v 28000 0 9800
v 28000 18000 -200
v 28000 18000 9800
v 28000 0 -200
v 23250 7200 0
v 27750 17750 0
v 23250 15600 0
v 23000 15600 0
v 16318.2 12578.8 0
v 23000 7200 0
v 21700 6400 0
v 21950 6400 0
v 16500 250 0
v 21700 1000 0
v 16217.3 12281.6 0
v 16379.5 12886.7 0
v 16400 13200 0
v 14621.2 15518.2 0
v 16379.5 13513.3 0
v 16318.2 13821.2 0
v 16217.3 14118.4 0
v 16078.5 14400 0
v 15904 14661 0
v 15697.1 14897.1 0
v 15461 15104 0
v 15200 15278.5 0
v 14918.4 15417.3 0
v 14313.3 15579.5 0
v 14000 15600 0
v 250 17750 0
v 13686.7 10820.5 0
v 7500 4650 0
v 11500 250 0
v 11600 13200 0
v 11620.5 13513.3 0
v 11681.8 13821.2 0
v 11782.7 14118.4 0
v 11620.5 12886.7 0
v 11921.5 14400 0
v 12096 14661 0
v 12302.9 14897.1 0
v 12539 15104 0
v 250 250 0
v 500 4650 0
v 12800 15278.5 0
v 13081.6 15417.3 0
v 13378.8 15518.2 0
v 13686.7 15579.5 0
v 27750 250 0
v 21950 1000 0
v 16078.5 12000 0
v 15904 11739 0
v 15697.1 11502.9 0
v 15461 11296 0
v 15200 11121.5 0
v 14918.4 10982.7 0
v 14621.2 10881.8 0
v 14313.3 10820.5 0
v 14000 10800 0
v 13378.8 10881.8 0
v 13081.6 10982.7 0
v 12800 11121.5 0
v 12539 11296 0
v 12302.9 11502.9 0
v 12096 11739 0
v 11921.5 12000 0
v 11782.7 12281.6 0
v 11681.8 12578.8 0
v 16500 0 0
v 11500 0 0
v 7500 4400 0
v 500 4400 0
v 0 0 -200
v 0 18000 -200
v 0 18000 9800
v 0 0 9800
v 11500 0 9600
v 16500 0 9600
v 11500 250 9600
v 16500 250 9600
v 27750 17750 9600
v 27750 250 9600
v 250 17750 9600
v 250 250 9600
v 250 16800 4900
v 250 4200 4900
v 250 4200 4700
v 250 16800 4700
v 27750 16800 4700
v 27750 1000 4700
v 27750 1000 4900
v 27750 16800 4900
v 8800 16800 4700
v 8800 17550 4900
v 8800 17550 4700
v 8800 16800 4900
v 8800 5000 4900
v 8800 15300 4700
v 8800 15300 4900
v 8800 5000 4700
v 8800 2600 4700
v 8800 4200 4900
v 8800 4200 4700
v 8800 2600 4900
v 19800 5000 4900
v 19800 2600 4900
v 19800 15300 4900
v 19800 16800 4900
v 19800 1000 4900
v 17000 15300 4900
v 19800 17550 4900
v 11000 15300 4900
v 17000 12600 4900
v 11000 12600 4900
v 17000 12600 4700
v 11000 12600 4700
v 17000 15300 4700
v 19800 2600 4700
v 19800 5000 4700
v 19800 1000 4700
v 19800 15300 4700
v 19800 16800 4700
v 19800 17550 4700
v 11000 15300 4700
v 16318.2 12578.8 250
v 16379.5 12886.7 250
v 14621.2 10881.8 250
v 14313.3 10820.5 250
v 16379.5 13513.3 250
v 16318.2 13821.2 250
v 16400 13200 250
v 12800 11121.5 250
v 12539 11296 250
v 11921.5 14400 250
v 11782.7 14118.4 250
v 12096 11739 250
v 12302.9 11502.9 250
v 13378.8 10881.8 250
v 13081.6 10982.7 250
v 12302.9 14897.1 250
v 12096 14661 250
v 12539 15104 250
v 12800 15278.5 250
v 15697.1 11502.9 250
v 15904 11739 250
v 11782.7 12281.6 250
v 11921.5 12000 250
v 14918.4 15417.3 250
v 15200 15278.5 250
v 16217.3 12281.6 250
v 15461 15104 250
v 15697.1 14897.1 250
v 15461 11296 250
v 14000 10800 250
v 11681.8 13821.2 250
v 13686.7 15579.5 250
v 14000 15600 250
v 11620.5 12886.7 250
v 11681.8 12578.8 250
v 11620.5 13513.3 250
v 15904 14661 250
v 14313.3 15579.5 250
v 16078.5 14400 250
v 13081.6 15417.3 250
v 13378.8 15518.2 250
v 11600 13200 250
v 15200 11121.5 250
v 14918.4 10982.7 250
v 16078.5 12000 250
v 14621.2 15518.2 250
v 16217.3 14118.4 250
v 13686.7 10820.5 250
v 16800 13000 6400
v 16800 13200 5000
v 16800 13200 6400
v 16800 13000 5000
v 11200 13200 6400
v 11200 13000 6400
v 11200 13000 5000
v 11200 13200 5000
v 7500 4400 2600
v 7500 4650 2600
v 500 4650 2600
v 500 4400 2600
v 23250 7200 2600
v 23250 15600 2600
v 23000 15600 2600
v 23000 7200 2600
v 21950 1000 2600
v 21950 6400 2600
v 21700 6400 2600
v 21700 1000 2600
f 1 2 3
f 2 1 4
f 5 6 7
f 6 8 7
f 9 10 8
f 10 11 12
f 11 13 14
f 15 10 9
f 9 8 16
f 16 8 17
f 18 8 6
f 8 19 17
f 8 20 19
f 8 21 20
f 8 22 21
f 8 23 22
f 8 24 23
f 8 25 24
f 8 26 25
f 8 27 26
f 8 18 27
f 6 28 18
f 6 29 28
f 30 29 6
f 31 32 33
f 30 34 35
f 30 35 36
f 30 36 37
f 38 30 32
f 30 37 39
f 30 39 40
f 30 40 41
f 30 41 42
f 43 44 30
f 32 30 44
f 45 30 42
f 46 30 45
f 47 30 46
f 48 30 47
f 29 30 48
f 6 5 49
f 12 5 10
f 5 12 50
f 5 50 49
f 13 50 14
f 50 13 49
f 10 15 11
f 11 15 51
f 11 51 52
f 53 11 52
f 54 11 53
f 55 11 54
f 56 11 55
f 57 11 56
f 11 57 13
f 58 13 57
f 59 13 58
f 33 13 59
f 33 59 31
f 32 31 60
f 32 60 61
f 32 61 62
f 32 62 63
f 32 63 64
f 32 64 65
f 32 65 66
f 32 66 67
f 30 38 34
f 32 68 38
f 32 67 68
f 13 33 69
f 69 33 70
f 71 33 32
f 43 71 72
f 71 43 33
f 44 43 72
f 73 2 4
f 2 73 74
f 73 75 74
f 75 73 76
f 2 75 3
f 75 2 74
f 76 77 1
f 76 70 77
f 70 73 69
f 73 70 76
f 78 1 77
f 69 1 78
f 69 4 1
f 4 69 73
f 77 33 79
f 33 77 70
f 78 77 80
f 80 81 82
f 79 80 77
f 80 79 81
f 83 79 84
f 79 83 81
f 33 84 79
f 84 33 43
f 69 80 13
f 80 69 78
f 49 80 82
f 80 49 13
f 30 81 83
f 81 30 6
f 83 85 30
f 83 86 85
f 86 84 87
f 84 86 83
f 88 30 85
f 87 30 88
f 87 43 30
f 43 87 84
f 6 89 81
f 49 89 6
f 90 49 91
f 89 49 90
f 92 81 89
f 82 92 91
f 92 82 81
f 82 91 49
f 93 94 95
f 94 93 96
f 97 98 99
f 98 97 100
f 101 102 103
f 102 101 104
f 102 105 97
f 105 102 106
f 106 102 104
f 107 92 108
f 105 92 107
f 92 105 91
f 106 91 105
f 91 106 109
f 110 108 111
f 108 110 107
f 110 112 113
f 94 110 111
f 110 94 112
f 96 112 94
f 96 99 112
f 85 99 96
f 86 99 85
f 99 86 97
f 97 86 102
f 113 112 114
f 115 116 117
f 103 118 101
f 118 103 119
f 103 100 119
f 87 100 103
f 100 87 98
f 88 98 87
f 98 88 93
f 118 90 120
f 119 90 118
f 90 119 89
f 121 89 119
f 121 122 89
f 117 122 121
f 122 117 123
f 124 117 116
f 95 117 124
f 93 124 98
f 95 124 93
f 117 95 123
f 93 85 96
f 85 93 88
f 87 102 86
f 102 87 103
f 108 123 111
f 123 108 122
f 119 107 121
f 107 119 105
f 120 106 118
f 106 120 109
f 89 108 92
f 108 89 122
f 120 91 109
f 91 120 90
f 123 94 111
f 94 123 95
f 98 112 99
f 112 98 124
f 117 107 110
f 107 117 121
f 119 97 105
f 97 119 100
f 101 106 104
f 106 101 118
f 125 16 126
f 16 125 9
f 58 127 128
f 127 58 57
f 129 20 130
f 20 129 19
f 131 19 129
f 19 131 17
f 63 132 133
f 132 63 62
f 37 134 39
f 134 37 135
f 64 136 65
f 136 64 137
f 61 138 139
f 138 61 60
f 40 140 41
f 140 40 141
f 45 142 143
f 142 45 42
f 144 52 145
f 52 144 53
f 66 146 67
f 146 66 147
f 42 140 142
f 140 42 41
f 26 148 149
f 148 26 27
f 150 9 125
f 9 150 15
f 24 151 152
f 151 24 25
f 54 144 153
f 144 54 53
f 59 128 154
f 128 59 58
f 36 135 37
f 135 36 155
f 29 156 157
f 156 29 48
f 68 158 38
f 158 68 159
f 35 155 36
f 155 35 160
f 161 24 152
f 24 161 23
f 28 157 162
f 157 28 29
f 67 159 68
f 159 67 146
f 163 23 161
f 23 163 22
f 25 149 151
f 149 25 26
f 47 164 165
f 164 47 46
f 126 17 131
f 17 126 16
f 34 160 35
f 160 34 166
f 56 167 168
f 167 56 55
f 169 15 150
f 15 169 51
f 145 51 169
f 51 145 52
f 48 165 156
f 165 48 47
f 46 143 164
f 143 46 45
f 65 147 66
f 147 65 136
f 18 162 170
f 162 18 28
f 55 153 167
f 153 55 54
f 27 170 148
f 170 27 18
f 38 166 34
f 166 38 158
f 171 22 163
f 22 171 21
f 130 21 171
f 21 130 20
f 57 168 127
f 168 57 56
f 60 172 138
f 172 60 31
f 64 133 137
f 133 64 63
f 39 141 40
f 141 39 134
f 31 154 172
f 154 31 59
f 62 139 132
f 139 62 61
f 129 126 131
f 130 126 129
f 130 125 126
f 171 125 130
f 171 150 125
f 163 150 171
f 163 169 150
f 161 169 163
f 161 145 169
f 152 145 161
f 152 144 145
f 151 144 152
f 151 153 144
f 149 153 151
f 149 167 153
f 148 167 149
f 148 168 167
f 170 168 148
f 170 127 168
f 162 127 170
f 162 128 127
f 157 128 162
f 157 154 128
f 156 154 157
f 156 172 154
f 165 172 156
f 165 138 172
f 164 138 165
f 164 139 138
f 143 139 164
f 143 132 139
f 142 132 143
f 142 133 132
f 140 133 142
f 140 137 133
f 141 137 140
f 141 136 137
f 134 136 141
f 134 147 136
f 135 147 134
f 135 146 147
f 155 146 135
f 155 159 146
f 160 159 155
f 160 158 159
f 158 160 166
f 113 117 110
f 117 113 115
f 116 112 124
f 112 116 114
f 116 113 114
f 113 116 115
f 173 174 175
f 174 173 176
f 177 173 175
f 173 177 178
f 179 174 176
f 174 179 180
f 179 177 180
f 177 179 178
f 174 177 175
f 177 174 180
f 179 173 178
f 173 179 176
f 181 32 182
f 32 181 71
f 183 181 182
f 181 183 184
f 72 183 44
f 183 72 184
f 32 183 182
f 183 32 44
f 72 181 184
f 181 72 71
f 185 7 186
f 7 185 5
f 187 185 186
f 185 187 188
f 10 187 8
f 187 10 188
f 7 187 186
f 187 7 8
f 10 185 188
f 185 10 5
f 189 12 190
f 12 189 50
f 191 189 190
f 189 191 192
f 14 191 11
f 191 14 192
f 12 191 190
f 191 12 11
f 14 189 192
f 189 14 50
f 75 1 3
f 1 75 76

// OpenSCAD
// THE COMMONS - Compact Edition
// Concept blockout, units = mm. Not construction documentation.
$fn = 48;
W=28000; D=18000; wall=250; h1=4800; h2=4800; roof=200;

module wall_box(x,y,w,d,h,z=0){ translate([x,y,z]) cube([w,d,h]); }
module slab(x,y,w,d,z,t=200){ translate([x,y,z]) cube([w,d,t]); }
module stage(){ translate([14000,13200,0]) cylinder(h=250,r=2400); }

// 1F floor
slab(0,0,W,D,-200,200);
// shell walls with entrance gap
wall_box(0,0,11500,wall,h1+h2);
wall_box(16500,0,W-16500,wall,h1+h2);
wall_box(0,D-wall,W,wall,h1+h2);
wall_box(0,0,wall,D,h1+h2);
wall_box(W-wall,0,wall,D,h1+h2);

// 2F side mezzanines; preserve central atrium
slab(0,4200,8800,12600,h1-100,200);
slab(19800,1000,8200,15800,h1-100,200);
slab(8800,15300,11000,2250,h1-100,200);
slab(8800,2600,11200,2400,h1-100,200);

// stage and DJ booth massing
stage();
slab(11000,12600,6000,3200,h1-100,200);
wall_box(11200,13000,5600,200,1400,h1+200);

// major internal masses
wall_box(500,4400,7000,250,2600); // bar back line
wall_box(23000,7200,250,8400,2600); // poster spine
wall_box(21700,1000,250,5400,2600); // quiet nook edge

// roof
slab(0,0,W,D,h1+h2,roof);
